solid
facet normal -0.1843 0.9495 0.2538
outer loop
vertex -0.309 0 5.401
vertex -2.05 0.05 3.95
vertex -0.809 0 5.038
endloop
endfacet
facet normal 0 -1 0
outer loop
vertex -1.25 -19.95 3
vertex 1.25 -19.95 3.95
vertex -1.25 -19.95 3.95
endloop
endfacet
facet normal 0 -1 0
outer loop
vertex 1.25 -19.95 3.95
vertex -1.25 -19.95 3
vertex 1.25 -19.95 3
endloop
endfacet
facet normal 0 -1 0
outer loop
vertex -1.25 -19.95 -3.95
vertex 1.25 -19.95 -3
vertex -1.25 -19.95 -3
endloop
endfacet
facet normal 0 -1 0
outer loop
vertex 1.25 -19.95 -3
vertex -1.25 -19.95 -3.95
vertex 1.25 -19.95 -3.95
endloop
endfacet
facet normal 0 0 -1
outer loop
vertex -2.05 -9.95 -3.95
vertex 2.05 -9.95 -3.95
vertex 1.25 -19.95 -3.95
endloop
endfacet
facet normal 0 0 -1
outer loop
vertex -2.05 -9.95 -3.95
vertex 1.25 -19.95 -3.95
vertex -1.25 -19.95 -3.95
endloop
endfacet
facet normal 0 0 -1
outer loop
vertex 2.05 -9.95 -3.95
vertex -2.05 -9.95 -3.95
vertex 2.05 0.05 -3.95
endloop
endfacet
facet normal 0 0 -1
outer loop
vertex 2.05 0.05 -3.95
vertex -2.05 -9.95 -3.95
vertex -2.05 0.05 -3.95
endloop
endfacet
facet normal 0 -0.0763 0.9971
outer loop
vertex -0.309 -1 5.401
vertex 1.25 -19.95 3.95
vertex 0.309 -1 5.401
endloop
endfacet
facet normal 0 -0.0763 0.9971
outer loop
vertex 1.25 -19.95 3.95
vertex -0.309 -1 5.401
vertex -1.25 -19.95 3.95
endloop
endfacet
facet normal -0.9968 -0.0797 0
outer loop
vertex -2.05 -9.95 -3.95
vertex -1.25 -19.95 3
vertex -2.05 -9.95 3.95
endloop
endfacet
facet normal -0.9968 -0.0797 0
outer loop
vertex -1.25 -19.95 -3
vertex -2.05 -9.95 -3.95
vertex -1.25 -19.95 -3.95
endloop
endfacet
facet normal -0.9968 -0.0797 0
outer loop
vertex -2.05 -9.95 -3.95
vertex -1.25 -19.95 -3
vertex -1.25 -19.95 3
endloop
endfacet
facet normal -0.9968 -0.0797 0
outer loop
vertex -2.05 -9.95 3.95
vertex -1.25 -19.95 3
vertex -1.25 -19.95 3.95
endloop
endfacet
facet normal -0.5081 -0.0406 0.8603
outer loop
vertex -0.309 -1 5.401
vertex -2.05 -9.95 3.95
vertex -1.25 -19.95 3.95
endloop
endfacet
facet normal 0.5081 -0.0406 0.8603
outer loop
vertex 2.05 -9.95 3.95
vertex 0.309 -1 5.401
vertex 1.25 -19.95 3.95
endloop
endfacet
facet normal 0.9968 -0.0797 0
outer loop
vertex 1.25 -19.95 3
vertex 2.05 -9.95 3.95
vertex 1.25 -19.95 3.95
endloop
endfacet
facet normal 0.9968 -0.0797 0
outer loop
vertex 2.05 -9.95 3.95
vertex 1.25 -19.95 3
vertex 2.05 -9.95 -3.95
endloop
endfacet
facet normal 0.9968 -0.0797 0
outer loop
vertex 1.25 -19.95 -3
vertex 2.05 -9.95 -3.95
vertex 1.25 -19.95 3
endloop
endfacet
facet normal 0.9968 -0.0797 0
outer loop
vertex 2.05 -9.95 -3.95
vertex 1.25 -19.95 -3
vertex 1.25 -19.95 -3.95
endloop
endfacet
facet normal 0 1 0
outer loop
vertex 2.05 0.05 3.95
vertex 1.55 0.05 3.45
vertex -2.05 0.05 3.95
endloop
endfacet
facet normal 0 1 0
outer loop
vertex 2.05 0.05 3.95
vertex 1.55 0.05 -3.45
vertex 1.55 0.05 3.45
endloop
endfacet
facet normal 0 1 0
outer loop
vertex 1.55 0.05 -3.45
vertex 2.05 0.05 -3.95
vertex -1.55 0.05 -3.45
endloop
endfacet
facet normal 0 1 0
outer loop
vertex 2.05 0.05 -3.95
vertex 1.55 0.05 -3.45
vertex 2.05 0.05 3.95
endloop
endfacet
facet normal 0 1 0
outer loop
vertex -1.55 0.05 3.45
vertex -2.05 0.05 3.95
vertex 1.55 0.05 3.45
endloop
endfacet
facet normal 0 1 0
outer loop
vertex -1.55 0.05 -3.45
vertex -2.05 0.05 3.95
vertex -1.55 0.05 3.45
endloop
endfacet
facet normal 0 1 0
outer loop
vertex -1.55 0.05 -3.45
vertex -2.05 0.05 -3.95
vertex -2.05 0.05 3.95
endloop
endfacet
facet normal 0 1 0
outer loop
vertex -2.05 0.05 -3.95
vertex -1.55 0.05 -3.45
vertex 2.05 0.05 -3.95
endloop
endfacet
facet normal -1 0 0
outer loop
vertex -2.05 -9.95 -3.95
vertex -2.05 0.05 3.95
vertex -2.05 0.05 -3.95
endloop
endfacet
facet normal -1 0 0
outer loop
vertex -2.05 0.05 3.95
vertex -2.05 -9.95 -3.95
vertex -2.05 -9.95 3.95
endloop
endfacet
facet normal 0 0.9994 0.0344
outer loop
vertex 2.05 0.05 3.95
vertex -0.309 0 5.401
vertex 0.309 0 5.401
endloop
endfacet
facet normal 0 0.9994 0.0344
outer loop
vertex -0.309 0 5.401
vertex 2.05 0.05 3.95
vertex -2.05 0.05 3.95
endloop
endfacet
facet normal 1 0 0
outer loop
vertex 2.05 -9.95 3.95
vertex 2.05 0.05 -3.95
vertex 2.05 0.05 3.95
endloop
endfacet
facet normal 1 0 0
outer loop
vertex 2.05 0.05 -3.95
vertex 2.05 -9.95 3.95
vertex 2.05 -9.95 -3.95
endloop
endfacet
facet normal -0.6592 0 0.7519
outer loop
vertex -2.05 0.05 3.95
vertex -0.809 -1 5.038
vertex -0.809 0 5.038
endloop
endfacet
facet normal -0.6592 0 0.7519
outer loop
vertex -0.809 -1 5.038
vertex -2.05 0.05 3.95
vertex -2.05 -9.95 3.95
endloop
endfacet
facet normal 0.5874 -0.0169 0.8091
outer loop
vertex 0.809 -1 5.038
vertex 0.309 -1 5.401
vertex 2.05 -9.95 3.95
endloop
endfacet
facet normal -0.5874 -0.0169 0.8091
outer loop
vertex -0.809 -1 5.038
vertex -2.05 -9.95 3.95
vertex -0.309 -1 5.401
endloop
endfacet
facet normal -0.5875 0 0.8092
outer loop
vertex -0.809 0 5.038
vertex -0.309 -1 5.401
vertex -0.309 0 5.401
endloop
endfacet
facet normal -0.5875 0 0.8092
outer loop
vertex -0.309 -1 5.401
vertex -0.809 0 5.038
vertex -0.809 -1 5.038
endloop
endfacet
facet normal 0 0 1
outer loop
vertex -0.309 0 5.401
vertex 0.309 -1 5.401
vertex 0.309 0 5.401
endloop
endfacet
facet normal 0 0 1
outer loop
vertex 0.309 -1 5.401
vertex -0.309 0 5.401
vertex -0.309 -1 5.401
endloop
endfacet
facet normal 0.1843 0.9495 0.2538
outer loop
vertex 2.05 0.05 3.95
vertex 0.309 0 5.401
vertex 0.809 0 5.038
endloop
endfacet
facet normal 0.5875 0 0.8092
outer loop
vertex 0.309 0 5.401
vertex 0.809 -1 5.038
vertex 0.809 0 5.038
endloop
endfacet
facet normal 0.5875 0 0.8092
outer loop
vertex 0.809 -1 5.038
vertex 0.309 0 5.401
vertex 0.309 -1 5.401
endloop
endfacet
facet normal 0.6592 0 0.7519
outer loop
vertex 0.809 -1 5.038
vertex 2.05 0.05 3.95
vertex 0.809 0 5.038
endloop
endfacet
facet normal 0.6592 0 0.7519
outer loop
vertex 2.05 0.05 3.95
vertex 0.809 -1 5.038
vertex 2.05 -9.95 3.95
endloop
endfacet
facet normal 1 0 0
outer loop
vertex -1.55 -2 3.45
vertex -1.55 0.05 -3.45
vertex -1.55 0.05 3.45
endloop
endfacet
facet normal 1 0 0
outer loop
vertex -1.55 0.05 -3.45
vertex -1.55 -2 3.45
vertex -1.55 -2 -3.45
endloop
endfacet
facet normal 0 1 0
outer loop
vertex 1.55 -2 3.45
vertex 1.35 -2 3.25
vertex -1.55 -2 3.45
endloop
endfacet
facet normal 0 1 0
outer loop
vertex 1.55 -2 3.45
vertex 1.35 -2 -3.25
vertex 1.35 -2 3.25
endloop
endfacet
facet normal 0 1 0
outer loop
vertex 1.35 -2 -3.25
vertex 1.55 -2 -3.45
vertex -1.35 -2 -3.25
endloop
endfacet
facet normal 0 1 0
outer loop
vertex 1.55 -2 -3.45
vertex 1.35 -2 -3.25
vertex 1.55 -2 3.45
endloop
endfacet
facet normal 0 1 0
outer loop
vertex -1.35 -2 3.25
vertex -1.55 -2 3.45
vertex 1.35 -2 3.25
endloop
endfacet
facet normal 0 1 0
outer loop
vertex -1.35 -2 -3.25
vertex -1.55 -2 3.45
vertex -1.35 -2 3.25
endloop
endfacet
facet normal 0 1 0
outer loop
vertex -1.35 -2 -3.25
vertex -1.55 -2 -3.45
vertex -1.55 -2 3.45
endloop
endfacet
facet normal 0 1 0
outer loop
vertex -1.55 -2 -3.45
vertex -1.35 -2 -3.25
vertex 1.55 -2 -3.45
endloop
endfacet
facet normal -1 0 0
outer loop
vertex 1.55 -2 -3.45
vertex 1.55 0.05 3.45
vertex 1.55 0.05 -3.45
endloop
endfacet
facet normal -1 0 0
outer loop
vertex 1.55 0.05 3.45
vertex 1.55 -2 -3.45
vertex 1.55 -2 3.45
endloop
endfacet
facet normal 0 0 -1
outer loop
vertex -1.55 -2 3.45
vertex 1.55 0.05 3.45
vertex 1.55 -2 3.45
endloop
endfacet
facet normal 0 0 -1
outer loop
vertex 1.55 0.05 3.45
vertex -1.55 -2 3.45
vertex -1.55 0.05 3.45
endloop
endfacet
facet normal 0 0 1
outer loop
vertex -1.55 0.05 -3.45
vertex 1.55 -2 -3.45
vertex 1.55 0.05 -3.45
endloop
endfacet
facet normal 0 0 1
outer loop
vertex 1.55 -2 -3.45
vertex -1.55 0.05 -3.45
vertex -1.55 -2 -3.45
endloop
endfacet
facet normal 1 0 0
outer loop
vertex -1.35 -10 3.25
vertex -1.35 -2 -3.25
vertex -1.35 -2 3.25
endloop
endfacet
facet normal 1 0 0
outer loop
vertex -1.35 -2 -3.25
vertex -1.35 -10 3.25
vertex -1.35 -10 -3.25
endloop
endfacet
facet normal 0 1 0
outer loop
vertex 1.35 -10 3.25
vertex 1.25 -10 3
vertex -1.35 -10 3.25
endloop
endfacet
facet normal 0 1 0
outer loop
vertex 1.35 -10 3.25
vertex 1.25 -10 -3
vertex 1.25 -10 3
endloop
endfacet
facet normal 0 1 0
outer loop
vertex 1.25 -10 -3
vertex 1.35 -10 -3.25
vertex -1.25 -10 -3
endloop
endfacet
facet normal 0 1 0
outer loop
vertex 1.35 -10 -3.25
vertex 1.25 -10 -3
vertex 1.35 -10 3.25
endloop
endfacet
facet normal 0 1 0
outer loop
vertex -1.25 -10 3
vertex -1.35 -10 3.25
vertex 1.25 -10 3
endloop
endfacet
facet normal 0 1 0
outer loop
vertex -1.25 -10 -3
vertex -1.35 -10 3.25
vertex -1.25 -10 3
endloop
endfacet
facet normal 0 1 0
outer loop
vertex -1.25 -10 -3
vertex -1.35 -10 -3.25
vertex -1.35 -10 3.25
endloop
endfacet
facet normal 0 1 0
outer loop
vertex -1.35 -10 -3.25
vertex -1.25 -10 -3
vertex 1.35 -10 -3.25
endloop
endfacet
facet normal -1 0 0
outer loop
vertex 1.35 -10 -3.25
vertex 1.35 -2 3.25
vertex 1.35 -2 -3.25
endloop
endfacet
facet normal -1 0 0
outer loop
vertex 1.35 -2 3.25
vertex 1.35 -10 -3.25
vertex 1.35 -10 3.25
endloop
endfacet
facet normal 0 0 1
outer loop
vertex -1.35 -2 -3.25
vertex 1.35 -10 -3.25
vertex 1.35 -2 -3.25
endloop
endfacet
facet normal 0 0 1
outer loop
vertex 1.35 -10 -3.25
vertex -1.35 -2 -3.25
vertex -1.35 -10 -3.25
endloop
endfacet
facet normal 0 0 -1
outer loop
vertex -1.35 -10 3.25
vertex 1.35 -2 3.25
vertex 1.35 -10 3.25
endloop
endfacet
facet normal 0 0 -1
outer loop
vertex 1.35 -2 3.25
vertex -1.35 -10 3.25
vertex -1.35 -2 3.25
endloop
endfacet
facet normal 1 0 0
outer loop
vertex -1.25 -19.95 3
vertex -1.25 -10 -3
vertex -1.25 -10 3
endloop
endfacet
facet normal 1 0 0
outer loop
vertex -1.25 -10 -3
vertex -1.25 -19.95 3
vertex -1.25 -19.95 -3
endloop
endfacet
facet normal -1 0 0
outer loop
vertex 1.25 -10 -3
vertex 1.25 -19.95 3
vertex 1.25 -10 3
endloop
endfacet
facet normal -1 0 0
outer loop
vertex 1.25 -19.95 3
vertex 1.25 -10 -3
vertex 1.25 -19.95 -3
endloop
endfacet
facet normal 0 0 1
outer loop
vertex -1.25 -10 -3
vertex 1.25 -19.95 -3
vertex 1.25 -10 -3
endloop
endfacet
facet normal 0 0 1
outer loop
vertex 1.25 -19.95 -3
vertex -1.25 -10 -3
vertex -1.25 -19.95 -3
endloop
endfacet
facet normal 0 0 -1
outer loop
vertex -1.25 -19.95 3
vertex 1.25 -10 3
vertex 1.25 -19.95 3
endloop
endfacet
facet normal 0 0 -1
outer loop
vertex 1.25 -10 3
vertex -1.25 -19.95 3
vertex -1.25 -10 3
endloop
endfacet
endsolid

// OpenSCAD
// Mill-Max 852-10-010-10-003000 probe soldering jig
$fn = 10;
tol = 0.1;

// Manual measure of Mill-Max 852-10-010-10-003000 10pin micro header
header_xmm = tol + 3;
header_ymm = tol + 6.8;
header_cup_pin_depth_mm = 4.6;
header_pin_jig_mm = 6;
header_plastic_depth = 2;

// Folded IDC cable 10 pin
idc_cable_h = 6;
idc_cable_w = 2.5;

// Shroud 
sthick = 1;
sdepth = 6;
shroud_header_l = 10;
shroud_cable_l = 10;
should_ledge = 0.4; // Transition between plastic and the metal solder cups (Measured to be 0.6mm)

rotate([90,0,0])
difference()
{
  union()
  {
    hull()
    {
      cube([header_xmm+sthick, header_ymm+sthick, 0.1], center=true);
      
      // Probe Shroud
      translate([0,0,shroud_header_l-0.1])
        cube([header_xmm+sthick, header_ymm+sthick, 0.1], center=true);
      
      // Cable Shroud
      translate([0,0,shroud_header_l+shroud_cable_l-0.1])
        cube([idc_cable_w, header_ymm+sthick, 0.1], center=true);
      
      // Direction Indicator
      translate([0,header_ymm/2 + 1,0])
        cylinder(r=1, h= 1);
    }
  }
  
  translate([0,0,0])
    cube([header_xmm, header_ymm, header_plastic_depth*2], center=true);
  
  translate([0,0,0])
    cube([header_xmm-should_ledge, header_ymm-should_ledge, shroud_header_l*2], center=true);
  
  translate([0,0,0])
    cube([idc_cable_w, idc_cable_h, shroud_header_l*2 + shroud_cable_l*2], center=true);
}
